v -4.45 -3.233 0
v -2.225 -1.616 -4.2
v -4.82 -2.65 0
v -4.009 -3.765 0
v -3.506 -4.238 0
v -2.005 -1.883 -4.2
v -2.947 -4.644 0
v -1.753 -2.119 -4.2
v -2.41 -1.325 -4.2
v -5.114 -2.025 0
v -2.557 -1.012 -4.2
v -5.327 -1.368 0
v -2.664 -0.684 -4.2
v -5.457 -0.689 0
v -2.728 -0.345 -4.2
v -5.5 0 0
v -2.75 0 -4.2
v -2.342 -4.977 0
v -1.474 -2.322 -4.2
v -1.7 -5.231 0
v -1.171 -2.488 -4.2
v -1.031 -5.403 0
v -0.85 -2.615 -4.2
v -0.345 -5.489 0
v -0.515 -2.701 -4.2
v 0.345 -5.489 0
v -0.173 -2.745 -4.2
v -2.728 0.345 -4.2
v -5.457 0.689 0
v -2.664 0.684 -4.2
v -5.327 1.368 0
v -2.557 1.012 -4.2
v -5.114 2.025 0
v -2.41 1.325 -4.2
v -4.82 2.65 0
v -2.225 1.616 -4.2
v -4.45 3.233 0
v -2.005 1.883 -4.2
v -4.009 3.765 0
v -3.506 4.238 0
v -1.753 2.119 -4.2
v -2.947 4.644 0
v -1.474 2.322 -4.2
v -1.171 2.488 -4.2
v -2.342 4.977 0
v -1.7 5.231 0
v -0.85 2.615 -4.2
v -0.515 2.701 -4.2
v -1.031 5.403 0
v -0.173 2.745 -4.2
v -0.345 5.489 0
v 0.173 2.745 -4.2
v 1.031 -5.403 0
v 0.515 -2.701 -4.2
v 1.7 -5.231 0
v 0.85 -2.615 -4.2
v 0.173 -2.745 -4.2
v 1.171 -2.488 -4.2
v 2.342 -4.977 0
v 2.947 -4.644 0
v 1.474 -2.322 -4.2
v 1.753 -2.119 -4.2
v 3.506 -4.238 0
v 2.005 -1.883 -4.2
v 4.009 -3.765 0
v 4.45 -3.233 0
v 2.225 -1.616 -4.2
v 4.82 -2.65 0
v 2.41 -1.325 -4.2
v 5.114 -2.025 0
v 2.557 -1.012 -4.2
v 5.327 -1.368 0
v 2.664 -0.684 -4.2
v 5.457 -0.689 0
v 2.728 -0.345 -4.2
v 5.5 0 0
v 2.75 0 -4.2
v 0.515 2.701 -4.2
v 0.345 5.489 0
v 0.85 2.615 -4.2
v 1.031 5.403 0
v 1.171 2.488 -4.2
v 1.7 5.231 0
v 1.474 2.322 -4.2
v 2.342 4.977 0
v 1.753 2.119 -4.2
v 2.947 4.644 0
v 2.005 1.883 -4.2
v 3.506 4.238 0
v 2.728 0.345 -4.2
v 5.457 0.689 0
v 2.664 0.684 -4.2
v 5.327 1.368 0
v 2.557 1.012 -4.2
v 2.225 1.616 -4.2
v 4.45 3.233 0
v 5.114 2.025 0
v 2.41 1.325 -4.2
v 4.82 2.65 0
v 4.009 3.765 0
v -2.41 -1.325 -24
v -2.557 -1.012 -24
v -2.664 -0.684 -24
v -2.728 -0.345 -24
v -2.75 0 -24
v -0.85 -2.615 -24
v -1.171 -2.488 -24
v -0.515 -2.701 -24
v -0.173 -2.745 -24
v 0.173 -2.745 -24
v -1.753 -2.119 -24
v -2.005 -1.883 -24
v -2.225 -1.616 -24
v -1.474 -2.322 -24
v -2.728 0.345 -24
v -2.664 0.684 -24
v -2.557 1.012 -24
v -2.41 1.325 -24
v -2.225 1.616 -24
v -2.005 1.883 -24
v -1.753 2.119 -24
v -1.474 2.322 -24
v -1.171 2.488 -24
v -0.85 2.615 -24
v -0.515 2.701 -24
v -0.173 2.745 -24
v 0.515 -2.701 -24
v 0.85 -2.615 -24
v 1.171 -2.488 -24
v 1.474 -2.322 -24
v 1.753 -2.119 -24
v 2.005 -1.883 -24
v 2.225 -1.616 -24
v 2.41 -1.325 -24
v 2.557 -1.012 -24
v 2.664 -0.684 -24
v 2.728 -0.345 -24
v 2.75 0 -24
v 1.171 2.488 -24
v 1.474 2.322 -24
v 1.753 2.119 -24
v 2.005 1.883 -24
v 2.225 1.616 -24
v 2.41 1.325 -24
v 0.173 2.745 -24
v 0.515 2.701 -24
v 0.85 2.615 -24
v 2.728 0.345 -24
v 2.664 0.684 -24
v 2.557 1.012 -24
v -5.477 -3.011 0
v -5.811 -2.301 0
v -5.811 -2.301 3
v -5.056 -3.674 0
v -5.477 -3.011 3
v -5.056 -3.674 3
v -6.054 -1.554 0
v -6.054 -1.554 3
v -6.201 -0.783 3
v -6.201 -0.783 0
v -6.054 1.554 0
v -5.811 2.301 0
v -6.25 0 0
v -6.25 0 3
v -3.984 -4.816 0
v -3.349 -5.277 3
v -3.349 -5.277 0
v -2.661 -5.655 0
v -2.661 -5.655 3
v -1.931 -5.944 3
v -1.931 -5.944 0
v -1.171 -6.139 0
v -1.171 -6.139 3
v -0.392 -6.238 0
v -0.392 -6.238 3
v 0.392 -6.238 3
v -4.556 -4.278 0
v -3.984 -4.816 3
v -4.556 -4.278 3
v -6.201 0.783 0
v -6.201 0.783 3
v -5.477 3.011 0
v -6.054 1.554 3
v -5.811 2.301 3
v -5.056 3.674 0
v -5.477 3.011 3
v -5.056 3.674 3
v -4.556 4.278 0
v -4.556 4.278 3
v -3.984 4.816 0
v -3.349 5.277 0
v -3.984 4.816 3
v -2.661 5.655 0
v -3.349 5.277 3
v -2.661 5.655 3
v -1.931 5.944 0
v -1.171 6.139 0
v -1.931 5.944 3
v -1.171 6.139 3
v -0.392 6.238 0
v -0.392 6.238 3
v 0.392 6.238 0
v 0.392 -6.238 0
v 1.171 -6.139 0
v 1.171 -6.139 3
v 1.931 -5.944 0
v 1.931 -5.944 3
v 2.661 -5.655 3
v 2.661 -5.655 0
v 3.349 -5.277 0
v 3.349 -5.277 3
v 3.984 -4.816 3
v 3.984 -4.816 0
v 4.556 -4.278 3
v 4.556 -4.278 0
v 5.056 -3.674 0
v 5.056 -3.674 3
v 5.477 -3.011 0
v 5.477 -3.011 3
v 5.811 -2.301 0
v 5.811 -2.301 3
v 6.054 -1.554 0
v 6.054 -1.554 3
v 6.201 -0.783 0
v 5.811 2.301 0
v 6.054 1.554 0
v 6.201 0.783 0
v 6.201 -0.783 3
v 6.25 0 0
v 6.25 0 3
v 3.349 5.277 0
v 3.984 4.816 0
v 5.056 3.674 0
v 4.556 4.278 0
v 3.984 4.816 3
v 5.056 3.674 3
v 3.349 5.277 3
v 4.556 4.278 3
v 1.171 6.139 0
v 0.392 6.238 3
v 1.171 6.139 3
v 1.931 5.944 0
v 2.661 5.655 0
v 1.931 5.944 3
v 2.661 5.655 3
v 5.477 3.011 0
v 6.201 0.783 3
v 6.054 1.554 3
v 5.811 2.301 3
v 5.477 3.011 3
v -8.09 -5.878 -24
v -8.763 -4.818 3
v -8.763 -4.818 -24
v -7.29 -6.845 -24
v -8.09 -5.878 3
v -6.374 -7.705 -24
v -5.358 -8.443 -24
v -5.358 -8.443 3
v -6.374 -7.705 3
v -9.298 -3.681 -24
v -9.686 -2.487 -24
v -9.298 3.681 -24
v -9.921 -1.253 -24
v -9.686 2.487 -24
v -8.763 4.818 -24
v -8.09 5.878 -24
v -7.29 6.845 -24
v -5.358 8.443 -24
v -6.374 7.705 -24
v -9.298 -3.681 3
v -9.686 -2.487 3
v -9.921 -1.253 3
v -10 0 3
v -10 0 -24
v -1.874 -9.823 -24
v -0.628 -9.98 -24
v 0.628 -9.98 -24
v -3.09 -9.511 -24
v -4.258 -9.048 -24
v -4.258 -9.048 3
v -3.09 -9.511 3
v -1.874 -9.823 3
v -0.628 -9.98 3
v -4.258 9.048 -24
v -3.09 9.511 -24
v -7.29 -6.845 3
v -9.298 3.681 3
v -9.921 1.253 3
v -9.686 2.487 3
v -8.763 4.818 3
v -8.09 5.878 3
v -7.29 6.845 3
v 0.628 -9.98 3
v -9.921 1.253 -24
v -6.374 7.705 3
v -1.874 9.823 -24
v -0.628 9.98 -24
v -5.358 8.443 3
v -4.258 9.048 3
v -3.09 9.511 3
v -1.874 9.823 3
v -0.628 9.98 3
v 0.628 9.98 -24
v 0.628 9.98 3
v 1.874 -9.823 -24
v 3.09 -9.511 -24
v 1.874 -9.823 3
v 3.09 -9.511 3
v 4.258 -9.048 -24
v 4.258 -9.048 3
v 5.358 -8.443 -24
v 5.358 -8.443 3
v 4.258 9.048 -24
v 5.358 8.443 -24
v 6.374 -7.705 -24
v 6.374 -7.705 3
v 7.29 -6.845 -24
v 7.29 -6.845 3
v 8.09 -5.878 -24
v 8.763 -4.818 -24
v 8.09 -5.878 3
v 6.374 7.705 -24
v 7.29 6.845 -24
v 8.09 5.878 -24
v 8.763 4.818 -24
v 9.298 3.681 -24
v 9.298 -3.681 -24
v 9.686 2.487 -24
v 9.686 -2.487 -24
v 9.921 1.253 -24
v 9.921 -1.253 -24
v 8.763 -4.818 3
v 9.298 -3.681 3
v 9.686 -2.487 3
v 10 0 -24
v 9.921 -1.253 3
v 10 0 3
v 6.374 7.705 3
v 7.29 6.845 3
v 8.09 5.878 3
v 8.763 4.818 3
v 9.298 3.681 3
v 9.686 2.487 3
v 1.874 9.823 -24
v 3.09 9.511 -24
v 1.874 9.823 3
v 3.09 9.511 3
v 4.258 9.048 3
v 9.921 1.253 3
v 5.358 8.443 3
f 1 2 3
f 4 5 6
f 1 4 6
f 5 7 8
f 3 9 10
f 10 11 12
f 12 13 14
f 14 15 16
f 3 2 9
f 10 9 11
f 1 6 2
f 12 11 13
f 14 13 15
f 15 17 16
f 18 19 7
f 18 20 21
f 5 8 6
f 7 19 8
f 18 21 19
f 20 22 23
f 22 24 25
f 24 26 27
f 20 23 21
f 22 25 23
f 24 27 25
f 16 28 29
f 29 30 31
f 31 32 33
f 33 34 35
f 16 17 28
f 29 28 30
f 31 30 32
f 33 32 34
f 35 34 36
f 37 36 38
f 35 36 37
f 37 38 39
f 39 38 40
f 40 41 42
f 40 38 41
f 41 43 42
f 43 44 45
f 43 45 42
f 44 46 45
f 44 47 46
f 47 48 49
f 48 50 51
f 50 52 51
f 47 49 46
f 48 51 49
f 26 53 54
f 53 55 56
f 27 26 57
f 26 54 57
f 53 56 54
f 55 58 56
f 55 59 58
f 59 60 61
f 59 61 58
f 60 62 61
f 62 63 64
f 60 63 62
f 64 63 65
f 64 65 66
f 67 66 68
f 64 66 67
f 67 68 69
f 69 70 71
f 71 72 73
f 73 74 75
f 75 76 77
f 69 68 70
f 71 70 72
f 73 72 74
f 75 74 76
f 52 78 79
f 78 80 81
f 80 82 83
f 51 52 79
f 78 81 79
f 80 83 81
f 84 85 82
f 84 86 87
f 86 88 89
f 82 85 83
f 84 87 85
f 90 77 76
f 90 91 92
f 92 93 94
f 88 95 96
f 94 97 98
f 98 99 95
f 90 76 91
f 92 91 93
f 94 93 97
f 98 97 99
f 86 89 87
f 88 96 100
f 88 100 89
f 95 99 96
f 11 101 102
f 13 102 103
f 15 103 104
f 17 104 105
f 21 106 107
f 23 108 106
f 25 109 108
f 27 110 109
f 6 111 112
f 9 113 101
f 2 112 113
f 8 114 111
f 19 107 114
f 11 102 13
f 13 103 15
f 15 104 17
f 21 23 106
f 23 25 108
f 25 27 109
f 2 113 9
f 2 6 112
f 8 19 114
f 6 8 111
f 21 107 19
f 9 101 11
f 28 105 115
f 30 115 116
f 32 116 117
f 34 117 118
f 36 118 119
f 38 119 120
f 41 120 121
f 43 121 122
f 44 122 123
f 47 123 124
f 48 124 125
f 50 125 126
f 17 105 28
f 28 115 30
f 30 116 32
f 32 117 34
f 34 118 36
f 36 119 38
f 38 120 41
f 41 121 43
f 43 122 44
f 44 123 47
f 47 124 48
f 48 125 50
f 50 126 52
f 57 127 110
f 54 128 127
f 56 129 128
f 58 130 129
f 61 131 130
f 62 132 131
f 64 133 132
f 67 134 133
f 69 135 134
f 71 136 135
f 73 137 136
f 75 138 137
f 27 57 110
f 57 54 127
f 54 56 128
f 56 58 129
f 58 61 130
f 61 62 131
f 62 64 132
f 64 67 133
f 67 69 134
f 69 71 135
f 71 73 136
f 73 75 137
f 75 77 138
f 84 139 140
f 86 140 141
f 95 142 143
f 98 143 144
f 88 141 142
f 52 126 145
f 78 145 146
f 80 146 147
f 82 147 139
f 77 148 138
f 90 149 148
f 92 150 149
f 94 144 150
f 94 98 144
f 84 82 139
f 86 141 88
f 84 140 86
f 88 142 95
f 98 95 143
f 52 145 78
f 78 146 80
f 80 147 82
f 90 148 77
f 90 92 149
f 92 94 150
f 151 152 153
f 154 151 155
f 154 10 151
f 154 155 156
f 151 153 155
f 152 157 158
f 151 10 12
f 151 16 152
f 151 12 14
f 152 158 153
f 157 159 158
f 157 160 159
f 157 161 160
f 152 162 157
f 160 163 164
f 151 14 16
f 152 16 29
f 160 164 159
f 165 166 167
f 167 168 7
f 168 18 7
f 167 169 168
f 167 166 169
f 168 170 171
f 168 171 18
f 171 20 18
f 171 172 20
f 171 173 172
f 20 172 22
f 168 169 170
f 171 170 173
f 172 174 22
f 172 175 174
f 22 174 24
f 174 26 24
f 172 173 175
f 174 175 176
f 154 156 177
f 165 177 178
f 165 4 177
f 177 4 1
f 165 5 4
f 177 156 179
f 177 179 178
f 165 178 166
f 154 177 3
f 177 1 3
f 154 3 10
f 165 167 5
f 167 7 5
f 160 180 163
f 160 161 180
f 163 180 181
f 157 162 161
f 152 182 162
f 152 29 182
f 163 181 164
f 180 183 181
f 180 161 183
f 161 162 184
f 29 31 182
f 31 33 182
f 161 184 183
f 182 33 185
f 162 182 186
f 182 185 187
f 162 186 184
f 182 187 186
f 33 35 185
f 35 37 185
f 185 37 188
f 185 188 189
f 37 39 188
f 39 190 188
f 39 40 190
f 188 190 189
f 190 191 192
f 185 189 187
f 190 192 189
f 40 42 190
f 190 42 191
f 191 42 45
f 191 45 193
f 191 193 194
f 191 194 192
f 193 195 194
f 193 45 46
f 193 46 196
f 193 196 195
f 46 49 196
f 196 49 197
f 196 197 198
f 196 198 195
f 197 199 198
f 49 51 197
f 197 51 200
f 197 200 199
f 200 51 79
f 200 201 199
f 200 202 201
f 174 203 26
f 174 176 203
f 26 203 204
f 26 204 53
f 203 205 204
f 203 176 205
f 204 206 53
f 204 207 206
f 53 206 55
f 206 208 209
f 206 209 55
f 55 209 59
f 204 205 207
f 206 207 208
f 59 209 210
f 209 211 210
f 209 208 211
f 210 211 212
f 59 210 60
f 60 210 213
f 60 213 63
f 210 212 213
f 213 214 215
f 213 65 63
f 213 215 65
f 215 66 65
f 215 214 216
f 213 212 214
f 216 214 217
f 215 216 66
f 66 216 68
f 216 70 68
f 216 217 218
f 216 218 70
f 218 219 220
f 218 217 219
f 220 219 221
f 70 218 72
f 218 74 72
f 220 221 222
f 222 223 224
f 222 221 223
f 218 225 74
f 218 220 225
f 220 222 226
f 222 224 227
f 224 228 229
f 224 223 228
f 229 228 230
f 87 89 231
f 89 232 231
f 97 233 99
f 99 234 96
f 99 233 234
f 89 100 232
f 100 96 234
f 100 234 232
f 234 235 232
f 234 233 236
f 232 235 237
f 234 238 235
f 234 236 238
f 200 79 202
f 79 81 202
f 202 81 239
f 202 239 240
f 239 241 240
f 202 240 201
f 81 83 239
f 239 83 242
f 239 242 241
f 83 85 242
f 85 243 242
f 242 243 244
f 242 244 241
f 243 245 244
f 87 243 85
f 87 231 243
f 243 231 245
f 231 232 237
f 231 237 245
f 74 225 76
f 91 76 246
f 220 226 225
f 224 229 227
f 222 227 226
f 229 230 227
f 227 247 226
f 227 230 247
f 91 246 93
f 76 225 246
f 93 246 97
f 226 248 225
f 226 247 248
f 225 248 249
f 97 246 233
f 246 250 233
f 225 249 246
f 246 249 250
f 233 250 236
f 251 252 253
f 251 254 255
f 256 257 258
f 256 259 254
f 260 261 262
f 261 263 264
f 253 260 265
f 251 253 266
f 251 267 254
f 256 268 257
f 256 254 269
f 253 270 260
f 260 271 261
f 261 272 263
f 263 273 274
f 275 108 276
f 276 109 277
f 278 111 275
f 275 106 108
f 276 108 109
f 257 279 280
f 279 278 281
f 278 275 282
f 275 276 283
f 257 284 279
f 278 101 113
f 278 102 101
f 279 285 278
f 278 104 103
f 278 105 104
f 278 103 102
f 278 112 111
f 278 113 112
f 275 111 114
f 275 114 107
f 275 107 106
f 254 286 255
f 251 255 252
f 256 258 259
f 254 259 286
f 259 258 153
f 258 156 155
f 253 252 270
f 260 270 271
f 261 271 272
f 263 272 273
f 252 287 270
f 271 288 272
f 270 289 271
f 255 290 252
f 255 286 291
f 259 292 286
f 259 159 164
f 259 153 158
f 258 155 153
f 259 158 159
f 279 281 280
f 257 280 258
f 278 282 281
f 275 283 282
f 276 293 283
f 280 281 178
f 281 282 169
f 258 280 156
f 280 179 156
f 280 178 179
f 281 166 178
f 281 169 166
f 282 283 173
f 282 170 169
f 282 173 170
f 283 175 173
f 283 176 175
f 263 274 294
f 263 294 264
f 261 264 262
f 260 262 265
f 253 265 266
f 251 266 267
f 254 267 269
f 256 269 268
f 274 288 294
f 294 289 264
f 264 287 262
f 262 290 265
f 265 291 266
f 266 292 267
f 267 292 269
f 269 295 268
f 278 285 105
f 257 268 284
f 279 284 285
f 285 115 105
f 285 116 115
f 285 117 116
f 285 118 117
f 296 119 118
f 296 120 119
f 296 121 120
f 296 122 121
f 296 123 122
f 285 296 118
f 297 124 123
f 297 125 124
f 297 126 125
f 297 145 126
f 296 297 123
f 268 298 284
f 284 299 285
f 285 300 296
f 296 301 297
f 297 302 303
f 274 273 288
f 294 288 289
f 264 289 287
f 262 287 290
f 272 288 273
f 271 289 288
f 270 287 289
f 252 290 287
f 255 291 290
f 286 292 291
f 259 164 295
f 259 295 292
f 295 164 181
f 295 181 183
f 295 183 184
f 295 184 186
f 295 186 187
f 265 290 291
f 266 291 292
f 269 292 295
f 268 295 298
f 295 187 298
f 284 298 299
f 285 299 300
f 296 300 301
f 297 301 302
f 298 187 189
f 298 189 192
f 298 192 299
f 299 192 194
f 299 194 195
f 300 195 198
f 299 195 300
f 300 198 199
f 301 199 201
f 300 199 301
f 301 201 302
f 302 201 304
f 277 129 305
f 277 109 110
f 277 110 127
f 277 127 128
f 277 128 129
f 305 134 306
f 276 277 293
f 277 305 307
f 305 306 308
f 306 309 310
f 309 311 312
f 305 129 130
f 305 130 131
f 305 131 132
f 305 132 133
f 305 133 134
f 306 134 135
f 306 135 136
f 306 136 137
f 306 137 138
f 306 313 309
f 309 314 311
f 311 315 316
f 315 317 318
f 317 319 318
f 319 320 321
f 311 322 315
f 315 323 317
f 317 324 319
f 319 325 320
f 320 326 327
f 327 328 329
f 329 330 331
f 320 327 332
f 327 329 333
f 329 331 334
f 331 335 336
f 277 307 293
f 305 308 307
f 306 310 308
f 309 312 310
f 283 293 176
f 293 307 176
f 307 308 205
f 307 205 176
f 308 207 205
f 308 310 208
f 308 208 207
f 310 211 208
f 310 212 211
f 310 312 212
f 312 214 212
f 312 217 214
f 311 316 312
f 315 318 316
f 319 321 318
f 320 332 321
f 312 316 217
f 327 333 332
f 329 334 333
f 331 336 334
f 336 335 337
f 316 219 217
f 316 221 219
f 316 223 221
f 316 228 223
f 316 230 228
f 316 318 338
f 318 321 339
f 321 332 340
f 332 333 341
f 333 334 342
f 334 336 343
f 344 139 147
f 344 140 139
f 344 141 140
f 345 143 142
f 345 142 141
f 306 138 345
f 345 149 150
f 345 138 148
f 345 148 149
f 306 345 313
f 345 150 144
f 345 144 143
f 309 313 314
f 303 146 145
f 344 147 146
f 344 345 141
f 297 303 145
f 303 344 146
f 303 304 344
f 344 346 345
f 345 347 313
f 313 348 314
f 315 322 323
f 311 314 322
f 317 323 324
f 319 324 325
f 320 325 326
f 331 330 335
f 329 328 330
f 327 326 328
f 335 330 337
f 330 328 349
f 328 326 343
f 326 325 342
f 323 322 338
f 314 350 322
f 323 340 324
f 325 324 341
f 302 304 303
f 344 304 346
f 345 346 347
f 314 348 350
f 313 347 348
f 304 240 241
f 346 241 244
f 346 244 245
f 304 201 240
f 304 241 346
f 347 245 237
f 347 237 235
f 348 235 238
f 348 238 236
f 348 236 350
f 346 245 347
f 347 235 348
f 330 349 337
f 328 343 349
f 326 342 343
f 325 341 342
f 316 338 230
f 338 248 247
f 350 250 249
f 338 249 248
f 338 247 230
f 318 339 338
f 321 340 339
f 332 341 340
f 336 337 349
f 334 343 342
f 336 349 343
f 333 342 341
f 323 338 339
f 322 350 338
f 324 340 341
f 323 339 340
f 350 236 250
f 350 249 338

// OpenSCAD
$fn = 50;

difference() {
	union() {
		translate(v = [0, 0, -24.0]) {
			cylinder(h = 27, r = 10.0);
		}
	}
	union() {
		translate(v = [0, 0, 0]) {
			rotate(a = [0, 0, 0]) {
				difference() {
					union() {
						translate(v = [0, 0, -27.0]) {
							cylinder(h = 27, r = 2.25);
						}
						translate(v = [0, 0, -4.2]) {
							cylinder(h = 4.2, r1 = 2.75, r2 = 5.5);
						}
						translate(v = [0, 0, -27.0]) {
							cylinder(h = 27, r = 2.75);
						}
						translate(v = [0, 0, -27.0]) {
							cylinder(h = 27, r = 2.25);
						}
					}
					union();
				}
			}
		}
		#cylinder(h = 3, r = 6.25);
	}
}
